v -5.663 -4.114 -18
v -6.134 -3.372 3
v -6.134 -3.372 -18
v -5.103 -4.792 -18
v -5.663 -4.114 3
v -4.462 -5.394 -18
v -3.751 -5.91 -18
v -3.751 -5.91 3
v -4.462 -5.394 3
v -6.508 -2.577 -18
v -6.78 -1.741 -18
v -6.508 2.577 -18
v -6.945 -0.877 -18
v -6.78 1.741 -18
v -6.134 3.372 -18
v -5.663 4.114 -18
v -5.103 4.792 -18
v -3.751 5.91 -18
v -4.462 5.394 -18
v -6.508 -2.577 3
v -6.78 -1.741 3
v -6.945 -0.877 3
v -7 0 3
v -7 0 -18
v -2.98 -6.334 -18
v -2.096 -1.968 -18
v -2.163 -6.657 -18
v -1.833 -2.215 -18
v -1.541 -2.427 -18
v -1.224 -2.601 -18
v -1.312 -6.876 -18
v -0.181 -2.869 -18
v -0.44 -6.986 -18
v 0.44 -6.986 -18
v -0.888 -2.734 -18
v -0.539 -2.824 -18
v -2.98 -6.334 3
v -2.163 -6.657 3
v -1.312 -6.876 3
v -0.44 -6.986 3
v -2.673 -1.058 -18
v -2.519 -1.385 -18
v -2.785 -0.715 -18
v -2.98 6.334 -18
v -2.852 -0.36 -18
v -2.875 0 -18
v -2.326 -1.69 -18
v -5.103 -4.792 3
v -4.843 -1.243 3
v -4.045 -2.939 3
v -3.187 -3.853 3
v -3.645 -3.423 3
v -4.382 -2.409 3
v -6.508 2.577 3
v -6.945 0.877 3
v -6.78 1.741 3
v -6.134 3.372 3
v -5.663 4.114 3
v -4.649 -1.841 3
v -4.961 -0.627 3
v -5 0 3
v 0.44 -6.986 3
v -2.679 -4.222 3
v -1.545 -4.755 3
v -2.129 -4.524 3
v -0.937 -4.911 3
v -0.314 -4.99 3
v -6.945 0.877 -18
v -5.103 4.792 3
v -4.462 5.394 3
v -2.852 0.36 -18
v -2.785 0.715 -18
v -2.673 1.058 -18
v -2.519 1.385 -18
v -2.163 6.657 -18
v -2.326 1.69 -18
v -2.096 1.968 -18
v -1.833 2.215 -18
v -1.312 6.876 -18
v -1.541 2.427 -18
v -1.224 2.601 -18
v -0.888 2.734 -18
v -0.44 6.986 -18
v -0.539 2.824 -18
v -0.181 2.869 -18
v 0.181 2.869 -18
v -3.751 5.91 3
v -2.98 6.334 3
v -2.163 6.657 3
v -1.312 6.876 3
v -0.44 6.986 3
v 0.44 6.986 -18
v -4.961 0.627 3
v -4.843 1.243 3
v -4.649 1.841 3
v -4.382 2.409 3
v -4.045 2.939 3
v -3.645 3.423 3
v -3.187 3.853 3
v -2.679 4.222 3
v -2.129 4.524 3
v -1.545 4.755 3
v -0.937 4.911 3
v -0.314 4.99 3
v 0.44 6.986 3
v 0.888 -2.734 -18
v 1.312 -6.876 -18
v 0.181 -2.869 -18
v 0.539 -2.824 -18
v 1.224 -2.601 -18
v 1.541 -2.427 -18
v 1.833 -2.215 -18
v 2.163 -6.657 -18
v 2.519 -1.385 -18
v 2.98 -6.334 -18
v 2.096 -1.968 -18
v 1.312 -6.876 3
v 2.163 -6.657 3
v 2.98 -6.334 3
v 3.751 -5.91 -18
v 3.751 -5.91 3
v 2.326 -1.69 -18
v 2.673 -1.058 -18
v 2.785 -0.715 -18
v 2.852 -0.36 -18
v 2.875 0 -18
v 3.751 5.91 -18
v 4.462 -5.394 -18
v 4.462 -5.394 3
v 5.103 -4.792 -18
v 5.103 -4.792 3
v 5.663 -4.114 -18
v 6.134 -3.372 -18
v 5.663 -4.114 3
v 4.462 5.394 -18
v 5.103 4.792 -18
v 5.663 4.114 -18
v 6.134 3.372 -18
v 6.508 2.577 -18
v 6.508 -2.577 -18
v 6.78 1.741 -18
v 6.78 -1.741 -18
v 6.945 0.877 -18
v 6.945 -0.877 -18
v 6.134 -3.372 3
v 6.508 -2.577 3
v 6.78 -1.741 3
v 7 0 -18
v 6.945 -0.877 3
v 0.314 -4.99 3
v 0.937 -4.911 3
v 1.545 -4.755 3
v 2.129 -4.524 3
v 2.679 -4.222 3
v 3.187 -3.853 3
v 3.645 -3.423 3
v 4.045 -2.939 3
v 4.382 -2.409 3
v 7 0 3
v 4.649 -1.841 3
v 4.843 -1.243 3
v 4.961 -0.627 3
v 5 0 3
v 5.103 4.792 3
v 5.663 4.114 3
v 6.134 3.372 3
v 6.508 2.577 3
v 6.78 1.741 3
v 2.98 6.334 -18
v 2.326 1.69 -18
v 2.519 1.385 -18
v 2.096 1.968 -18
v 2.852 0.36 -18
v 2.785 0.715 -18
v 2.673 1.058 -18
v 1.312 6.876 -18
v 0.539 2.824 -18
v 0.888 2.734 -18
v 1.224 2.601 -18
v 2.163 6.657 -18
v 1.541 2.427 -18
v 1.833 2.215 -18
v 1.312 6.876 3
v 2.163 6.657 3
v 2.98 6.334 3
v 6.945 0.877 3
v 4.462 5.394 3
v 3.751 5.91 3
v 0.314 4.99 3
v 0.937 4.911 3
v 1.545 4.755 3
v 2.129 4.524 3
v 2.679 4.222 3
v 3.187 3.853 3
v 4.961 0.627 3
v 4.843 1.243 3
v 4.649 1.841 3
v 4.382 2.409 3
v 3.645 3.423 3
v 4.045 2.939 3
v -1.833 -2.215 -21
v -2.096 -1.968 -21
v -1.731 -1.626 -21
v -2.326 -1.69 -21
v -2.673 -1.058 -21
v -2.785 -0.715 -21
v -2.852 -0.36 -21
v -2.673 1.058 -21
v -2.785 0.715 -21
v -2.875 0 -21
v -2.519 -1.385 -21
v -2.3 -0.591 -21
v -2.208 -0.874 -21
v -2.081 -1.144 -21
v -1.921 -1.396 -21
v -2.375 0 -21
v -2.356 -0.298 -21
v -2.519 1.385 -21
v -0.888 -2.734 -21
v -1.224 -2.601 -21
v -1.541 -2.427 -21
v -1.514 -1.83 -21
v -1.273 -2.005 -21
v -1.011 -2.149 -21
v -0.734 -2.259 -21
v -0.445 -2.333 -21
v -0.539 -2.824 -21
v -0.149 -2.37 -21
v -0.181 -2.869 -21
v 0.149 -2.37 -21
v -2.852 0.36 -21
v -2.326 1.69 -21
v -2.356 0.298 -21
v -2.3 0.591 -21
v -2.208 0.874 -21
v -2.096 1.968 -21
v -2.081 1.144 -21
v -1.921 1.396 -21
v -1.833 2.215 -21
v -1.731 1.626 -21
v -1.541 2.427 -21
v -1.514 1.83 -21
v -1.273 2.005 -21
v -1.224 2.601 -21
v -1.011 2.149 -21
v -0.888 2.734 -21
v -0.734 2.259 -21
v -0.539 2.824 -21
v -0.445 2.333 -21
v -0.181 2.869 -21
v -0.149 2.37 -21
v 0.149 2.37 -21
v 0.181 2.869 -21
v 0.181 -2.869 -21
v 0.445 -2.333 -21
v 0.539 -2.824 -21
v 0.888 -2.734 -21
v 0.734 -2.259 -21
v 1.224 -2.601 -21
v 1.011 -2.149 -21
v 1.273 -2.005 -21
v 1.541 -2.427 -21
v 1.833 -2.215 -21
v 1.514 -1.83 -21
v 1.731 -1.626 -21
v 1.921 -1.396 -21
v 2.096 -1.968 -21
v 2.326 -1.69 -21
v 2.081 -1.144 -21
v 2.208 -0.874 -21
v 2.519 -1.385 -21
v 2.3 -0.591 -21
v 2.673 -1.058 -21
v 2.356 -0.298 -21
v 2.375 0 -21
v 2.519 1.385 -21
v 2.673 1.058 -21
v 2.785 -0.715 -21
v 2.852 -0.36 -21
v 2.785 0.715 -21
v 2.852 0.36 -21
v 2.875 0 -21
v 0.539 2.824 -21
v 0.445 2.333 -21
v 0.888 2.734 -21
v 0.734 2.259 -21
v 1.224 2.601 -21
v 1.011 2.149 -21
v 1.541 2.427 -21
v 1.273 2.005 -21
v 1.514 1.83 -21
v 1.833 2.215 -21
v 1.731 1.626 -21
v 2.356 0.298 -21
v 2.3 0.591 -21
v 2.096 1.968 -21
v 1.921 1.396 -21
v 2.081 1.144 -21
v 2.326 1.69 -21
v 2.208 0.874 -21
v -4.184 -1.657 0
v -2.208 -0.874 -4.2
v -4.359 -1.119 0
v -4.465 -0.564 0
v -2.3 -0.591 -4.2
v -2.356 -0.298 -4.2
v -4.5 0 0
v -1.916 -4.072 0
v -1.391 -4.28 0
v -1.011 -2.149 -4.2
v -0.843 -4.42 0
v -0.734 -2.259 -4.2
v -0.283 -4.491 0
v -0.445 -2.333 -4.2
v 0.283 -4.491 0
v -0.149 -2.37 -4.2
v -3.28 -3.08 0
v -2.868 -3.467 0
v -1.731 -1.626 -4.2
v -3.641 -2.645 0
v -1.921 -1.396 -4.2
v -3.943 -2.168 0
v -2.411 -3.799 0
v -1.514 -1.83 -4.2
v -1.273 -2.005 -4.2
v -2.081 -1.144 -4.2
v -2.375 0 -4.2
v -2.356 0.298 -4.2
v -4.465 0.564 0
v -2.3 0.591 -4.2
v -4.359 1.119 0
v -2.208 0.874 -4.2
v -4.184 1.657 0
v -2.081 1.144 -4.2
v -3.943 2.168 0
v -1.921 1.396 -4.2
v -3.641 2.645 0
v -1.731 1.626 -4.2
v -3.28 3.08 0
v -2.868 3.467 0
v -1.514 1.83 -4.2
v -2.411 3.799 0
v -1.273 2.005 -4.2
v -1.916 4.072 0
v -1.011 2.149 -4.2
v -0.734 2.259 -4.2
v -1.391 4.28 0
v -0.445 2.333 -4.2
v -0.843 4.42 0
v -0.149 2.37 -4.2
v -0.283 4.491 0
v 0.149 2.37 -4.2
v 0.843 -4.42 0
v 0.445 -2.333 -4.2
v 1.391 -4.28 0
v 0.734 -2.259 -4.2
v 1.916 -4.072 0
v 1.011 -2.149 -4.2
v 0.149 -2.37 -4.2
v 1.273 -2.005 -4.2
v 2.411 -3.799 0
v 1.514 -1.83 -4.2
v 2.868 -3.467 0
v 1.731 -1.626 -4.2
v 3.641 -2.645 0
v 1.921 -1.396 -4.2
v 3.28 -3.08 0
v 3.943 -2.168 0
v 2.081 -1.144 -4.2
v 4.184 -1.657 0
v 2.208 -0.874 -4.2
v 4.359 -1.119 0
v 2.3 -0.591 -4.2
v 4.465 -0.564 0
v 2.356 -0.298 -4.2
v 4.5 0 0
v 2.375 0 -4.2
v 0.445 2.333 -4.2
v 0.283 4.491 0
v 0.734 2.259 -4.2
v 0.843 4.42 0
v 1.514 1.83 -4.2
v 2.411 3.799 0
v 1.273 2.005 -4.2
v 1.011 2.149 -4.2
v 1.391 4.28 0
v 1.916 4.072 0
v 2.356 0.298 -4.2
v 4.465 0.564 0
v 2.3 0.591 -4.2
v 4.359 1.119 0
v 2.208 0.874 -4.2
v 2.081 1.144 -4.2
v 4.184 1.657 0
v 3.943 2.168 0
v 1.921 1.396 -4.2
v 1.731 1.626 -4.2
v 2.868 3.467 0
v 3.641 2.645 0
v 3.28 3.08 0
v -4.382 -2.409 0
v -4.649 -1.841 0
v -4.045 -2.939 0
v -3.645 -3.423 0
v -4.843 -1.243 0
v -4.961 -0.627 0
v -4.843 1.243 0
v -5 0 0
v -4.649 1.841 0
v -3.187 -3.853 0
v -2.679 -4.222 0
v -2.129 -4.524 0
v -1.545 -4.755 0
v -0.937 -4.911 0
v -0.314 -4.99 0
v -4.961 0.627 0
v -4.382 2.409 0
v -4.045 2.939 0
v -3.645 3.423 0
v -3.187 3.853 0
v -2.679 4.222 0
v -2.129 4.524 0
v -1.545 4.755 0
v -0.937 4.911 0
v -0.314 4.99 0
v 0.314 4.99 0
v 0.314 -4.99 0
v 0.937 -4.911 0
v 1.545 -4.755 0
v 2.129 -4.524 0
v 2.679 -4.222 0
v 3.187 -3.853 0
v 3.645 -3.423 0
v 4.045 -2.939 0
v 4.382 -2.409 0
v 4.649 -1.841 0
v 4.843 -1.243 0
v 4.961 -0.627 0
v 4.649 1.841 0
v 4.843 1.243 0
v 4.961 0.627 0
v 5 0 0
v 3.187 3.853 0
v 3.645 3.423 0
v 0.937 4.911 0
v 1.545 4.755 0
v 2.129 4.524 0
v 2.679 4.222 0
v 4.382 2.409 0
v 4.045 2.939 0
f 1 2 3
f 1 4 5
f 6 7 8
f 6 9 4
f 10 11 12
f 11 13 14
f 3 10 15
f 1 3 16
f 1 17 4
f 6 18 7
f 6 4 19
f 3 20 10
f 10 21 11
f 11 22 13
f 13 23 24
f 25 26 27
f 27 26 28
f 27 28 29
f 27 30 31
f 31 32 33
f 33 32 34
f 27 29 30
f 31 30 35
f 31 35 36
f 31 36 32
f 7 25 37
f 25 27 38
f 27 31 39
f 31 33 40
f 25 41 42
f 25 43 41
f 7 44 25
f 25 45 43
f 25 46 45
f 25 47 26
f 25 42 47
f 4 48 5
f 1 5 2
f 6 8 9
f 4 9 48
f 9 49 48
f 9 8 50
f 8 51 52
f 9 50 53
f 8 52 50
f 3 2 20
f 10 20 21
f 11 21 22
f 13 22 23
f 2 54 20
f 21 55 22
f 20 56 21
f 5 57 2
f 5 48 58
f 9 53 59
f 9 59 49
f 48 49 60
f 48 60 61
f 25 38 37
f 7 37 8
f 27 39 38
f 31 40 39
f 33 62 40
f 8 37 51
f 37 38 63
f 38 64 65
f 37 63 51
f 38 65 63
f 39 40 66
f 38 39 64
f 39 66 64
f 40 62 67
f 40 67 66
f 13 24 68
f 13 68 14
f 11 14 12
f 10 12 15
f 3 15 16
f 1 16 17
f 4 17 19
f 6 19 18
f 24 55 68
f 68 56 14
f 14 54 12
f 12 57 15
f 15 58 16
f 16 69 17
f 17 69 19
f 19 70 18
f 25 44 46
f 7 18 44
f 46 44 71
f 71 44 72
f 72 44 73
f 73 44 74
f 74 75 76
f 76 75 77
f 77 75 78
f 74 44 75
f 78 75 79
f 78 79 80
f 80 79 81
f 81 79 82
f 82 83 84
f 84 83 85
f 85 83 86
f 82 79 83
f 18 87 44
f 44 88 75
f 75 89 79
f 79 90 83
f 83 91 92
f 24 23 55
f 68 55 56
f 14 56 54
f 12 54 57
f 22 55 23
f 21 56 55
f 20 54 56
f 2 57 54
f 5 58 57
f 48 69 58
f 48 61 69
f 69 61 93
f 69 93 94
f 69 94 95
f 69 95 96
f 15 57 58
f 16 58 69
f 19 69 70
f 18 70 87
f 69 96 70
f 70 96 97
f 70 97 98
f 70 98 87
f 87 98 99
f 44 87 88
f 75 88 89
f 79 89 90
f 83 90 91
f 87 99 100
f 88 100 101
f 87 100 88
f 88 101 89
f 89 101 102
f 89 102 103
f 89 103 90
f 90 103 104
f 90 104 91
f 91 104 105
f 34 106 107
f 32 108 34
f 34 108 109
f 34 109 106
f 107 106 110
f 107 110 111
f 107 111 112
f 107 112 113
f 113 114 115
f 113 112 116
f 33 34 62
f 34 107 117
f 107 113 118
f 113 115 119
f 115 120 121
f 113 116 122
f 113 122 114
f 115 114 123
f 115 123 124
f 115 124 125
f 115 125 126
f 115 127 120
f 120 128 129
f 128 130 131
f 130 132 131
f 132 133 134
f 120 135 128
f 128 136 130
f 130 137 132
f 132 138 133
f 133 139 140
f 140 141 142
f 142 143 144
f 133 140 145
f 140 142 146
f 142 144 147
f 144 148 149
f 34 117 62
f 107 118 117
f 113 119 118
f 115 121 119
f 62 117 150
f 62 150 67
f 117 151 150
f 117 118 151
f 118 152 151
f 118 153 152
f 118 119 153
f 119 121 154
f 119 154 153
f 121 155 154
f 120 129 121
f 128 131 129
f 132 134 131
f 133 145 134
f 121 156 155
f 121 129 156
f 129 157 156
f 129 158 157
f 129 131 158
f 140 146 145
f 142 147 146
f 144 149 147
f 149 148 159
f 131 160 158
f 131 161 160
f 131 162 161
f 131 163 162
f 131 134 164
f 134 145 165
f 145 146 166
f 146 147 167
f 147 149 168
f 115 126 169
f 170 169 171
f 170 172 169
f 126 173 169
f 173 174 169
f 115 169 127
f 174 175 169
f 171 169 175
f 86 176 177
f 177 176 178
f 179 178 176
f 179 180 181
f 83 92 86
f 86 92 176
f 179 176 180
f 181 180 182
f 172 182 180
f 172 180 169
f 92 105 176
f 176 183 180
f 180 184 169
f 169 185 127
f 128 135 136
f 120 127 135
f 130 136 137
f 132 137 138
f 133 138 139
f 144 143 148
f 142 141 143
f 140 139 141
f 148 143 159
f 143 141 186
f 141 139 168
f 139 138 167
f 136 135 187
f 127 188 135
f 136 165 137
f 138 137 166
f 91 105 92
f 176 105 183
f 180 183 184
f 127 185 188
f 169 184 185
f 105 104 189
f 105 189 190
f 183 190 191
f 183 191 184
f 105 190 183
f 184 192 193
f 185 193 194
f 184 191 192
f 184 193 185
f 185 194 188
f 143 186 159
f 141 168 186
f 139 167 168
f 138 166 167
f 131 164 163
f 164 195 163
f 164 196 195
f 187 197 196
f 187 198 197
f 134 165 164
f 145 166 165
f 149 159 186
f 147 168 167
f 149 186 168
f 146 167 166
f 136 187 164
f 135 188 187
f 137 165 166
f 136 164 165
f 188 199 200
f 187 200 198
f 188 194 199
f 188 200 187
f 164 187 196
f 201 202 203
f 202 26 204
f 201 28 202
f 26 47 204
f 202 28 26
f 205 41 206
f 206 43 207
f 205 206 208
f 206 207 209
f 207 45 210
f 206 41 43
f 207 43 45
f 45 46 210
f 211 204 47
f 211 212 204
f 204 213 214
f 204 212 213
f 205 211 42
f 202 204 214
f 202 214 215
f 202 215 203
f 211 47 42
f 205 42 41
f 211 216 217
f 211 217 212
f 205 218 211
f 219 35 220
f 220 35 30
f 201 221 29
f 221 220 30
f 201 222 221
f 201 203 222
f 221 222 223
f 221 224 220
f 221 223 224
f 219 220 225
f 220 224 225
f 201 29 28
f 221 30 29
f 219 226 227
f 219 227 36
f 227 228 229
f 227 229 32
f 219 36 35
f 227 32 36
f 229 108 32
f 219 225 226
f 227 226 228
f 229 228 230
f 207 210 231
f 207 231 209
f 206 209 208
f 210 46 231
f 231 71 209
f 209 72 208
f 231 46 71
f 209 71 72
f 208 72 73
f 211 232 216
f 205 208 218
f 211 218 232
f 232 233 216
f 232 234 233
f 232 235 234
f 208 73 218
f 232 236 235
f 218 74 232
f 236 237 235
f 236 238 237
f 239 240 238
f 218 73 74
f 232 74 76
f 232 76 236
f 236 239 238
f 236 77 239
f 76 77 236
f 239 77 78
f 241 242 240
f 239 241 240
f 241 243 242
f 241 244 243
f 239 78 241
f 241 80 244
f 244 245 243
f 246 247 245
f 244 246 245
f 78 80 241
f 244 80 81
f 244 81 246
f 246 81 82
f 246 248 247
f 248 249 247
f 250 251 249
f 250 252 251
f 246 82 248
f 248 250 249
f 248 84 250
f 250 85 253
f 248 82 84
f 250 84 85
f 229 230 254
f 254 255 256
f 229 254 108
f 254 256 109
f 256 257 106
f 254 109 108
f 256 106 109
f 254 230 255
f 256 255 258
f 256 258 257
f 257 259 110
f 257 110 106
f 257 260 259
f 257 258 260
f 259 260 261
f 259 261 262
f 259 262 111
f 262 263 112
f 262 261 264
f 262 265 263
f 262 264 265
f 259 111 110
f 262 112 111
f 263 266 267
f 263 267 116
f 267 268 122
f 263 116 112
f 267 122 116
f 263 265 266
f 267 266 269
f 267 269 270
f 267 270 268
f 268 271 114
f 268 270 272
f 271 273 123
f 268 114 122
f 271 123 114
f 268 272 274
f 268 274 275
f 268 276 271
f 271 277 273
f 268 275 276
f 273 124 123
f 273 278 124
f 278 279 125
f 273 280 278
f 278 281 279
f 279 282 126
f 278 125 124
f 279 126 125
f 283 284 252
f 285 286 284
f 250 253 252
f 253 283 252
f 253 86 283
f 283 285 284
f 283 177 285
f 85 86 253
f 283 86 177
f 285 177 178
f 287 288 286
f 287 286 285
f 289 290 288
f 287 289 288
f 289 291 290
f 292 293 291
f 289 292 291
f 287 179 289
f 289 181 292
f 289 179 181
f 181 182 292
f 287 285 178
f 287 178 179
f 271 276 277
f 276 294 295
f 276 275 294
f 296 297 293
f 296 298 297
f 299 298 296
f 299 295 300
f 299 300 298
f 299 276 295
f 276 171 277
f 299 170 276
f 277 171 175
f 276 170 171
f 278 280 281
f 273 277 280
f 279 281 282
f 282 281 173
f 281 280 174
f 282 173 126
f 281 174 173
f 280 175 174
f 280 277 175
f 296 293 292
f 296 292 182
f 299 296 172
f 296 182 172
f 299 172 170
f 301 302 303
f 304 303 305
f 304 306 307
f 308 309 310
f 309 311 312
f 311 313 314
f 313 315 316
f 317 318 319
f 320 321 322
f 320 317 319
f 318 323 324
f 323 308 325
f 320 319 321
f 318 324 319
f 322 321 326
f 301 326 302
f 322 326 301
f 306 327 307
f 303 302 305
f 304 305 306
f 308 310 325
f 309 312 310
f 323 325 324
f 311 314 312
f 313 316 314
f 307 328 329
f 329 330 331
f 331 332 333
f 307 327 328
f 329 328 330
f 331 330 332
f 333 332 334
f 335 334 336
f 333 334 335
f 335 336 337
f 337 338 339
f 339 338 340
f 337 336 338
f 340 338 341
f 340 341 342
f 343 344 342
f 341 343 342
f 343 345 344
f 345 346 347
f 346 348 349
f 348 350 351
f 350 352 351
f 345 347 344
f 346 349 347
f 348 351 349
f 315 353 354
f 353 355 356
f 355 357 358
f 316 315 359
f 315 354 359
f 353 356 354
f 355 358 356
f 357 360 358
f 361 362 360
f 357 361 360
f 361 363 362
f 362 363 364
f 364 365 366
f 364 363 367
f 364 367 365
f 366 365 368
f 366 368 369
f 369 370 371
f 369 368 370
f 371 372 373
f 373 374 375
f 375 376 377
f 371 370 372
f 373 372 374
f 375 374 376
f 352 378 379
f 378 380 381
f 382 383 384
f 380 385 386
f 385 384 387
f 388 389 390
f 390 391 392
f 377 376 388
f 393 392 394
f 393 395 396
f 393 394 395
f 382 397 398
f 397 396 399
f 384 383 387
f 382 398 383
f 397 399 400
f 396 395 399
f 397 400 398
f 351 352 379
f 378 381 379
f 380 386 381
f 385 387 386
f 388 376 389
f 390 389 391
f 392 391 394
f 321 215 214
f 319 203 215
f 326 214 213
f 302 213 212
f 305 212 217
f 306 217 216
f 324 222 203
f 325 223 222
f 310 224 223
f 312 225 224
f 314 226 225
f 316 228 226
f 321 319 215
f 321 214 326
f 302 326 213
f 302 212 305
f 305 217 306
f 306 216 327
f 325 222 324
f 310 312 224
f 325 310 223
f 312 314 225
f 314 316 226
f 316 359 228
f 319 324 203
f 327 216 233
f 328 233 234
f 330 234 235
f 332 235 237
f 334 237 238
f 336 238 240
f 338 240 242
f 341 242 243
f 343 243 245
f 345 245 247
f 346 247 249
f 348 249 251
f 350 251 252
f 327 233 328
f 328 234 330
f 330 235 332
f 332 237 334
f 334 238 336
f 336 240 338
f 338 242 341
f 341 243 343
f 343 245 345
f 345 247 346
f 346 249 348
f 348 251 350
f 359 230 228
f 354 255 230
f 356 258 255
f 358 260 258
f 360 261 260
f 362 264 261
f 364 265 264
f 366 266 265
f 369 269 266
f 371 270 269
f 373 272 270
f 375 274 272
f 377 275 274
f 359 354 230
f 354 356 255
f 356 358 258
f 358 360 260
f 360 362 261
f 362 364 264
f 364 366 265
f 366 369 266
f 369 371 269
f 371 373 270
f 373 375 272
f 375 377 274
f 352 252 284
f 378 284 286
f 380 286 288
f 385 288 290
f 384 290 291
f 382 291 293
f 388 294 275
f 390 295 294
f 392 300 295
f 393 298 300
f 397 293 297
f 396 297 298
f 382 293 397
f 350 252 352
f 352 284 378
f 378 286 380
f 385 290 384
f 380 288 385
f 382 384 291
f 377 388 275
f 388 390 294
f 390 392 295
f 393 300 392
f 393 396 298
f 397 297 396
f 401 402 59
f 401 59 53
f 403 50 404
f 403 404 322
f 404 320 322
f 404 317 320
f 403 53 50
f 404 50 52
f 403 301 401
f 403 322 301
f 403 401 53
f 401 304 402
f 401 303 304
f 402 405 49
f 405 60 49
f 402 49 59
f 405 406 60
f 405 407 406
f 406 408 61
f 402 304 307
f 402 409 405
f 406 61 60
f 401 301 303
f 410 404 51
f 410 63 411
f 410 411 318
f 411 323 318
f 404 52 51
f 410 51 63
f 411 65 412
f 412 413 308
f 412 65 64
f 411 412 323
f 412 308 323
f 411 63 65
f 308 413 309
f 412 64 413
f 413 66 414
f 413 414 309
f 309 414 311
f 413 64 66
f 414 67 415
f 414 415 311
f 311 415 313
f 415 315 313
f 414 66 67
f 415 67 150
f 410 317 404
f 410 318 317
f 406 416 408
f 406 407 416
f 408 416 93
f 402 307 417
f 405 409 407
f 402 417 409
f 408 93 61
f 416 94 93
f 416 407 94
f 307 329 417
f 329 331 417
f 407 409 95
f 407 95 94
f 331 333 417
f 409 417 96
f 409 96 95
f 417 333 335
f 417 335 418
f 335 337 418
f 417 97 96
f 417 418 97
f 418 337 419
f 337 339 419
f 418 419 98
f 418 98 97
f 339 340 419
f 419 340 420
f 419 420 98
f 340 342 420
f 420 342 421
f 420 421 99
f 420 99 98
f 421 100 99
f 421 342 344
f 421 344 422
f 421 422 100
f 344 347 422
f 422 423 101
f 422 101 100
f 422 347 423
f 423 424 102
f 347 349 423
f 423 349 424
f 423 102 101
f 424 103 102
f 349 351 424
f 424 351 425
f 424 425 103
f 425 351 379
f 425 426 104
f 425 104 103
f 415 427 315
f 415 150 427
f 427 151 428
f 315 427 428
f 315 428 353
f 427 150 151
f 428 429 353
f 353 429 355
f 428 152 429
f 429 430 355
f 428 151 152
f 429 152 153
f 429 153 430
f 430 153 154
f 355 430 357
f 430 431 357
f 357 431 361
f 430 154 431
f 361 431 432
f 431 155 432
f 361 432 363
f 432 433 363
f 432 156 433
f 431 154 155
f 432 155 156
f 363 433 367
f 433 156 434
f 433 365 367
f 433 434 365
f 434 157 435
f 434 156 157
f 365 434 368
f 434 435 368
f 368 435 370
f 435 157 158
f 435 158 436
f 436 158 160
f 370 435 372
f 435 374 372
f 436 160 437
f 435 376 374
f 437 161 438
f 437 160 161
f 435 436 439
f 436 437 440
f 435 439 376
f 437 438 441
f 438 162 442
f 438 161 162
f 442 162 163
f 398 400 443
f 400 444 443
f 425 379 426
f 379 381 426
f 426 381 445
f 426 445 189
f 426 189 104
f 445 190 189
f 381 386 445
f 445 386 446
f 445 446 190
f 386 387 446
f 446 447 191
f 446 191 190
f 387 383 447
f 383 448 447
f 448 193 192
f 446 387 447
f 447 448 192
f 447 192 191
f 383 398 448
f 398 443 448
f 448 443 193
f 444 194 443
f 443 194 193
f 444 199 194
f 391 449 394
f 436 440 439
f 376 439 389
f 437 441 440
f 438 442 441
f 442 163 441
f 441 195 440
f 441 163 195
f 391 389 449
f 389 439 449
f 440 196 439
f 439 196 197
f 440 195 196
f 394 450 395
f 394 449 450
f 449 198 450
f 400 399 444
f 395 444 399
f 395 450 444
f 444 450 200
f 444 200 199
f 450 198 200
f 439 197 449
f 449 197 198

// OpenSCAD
$fn = 50;


difference() {
	union() {
		translate(v = [0, 0, -18.0000000000]) {
			cylinder(h = 21, r = 7.0000000000);
		}
		#translate(v = [0, 0, -21.0000000000]) {
			cylinder(h = 21, r = 2.8750000000);
		}
	}
	union() {
		translate(v = [0, 0, 0]) {
			rotate(a = [0, 0, 0]) {
				difference() {
					union() {
						translate(v = [0, 0, -21.0000000000]) {
							cylinder(h = 21, r = 2.2500000000);
						}
						translate(v = [0, 0, -4.2000000000]) {
							cylinder(h = 4.2000000000, r1 = 2.3750000000, r2 = 4.5000000000);
						}
						translate(v = [0, 0, -21.0000000000]) {
							cylinder(h = 21, r = 2.3750000000);
						}
						translate(v = [0, 0, -21.0000000000]) {
							cylinder(h = 21, r = 2.2500000000);
						}
					}
					union();
				}
			}
		}
		#cylinder(h = 3, r = 5.0000000000);
	}
}
